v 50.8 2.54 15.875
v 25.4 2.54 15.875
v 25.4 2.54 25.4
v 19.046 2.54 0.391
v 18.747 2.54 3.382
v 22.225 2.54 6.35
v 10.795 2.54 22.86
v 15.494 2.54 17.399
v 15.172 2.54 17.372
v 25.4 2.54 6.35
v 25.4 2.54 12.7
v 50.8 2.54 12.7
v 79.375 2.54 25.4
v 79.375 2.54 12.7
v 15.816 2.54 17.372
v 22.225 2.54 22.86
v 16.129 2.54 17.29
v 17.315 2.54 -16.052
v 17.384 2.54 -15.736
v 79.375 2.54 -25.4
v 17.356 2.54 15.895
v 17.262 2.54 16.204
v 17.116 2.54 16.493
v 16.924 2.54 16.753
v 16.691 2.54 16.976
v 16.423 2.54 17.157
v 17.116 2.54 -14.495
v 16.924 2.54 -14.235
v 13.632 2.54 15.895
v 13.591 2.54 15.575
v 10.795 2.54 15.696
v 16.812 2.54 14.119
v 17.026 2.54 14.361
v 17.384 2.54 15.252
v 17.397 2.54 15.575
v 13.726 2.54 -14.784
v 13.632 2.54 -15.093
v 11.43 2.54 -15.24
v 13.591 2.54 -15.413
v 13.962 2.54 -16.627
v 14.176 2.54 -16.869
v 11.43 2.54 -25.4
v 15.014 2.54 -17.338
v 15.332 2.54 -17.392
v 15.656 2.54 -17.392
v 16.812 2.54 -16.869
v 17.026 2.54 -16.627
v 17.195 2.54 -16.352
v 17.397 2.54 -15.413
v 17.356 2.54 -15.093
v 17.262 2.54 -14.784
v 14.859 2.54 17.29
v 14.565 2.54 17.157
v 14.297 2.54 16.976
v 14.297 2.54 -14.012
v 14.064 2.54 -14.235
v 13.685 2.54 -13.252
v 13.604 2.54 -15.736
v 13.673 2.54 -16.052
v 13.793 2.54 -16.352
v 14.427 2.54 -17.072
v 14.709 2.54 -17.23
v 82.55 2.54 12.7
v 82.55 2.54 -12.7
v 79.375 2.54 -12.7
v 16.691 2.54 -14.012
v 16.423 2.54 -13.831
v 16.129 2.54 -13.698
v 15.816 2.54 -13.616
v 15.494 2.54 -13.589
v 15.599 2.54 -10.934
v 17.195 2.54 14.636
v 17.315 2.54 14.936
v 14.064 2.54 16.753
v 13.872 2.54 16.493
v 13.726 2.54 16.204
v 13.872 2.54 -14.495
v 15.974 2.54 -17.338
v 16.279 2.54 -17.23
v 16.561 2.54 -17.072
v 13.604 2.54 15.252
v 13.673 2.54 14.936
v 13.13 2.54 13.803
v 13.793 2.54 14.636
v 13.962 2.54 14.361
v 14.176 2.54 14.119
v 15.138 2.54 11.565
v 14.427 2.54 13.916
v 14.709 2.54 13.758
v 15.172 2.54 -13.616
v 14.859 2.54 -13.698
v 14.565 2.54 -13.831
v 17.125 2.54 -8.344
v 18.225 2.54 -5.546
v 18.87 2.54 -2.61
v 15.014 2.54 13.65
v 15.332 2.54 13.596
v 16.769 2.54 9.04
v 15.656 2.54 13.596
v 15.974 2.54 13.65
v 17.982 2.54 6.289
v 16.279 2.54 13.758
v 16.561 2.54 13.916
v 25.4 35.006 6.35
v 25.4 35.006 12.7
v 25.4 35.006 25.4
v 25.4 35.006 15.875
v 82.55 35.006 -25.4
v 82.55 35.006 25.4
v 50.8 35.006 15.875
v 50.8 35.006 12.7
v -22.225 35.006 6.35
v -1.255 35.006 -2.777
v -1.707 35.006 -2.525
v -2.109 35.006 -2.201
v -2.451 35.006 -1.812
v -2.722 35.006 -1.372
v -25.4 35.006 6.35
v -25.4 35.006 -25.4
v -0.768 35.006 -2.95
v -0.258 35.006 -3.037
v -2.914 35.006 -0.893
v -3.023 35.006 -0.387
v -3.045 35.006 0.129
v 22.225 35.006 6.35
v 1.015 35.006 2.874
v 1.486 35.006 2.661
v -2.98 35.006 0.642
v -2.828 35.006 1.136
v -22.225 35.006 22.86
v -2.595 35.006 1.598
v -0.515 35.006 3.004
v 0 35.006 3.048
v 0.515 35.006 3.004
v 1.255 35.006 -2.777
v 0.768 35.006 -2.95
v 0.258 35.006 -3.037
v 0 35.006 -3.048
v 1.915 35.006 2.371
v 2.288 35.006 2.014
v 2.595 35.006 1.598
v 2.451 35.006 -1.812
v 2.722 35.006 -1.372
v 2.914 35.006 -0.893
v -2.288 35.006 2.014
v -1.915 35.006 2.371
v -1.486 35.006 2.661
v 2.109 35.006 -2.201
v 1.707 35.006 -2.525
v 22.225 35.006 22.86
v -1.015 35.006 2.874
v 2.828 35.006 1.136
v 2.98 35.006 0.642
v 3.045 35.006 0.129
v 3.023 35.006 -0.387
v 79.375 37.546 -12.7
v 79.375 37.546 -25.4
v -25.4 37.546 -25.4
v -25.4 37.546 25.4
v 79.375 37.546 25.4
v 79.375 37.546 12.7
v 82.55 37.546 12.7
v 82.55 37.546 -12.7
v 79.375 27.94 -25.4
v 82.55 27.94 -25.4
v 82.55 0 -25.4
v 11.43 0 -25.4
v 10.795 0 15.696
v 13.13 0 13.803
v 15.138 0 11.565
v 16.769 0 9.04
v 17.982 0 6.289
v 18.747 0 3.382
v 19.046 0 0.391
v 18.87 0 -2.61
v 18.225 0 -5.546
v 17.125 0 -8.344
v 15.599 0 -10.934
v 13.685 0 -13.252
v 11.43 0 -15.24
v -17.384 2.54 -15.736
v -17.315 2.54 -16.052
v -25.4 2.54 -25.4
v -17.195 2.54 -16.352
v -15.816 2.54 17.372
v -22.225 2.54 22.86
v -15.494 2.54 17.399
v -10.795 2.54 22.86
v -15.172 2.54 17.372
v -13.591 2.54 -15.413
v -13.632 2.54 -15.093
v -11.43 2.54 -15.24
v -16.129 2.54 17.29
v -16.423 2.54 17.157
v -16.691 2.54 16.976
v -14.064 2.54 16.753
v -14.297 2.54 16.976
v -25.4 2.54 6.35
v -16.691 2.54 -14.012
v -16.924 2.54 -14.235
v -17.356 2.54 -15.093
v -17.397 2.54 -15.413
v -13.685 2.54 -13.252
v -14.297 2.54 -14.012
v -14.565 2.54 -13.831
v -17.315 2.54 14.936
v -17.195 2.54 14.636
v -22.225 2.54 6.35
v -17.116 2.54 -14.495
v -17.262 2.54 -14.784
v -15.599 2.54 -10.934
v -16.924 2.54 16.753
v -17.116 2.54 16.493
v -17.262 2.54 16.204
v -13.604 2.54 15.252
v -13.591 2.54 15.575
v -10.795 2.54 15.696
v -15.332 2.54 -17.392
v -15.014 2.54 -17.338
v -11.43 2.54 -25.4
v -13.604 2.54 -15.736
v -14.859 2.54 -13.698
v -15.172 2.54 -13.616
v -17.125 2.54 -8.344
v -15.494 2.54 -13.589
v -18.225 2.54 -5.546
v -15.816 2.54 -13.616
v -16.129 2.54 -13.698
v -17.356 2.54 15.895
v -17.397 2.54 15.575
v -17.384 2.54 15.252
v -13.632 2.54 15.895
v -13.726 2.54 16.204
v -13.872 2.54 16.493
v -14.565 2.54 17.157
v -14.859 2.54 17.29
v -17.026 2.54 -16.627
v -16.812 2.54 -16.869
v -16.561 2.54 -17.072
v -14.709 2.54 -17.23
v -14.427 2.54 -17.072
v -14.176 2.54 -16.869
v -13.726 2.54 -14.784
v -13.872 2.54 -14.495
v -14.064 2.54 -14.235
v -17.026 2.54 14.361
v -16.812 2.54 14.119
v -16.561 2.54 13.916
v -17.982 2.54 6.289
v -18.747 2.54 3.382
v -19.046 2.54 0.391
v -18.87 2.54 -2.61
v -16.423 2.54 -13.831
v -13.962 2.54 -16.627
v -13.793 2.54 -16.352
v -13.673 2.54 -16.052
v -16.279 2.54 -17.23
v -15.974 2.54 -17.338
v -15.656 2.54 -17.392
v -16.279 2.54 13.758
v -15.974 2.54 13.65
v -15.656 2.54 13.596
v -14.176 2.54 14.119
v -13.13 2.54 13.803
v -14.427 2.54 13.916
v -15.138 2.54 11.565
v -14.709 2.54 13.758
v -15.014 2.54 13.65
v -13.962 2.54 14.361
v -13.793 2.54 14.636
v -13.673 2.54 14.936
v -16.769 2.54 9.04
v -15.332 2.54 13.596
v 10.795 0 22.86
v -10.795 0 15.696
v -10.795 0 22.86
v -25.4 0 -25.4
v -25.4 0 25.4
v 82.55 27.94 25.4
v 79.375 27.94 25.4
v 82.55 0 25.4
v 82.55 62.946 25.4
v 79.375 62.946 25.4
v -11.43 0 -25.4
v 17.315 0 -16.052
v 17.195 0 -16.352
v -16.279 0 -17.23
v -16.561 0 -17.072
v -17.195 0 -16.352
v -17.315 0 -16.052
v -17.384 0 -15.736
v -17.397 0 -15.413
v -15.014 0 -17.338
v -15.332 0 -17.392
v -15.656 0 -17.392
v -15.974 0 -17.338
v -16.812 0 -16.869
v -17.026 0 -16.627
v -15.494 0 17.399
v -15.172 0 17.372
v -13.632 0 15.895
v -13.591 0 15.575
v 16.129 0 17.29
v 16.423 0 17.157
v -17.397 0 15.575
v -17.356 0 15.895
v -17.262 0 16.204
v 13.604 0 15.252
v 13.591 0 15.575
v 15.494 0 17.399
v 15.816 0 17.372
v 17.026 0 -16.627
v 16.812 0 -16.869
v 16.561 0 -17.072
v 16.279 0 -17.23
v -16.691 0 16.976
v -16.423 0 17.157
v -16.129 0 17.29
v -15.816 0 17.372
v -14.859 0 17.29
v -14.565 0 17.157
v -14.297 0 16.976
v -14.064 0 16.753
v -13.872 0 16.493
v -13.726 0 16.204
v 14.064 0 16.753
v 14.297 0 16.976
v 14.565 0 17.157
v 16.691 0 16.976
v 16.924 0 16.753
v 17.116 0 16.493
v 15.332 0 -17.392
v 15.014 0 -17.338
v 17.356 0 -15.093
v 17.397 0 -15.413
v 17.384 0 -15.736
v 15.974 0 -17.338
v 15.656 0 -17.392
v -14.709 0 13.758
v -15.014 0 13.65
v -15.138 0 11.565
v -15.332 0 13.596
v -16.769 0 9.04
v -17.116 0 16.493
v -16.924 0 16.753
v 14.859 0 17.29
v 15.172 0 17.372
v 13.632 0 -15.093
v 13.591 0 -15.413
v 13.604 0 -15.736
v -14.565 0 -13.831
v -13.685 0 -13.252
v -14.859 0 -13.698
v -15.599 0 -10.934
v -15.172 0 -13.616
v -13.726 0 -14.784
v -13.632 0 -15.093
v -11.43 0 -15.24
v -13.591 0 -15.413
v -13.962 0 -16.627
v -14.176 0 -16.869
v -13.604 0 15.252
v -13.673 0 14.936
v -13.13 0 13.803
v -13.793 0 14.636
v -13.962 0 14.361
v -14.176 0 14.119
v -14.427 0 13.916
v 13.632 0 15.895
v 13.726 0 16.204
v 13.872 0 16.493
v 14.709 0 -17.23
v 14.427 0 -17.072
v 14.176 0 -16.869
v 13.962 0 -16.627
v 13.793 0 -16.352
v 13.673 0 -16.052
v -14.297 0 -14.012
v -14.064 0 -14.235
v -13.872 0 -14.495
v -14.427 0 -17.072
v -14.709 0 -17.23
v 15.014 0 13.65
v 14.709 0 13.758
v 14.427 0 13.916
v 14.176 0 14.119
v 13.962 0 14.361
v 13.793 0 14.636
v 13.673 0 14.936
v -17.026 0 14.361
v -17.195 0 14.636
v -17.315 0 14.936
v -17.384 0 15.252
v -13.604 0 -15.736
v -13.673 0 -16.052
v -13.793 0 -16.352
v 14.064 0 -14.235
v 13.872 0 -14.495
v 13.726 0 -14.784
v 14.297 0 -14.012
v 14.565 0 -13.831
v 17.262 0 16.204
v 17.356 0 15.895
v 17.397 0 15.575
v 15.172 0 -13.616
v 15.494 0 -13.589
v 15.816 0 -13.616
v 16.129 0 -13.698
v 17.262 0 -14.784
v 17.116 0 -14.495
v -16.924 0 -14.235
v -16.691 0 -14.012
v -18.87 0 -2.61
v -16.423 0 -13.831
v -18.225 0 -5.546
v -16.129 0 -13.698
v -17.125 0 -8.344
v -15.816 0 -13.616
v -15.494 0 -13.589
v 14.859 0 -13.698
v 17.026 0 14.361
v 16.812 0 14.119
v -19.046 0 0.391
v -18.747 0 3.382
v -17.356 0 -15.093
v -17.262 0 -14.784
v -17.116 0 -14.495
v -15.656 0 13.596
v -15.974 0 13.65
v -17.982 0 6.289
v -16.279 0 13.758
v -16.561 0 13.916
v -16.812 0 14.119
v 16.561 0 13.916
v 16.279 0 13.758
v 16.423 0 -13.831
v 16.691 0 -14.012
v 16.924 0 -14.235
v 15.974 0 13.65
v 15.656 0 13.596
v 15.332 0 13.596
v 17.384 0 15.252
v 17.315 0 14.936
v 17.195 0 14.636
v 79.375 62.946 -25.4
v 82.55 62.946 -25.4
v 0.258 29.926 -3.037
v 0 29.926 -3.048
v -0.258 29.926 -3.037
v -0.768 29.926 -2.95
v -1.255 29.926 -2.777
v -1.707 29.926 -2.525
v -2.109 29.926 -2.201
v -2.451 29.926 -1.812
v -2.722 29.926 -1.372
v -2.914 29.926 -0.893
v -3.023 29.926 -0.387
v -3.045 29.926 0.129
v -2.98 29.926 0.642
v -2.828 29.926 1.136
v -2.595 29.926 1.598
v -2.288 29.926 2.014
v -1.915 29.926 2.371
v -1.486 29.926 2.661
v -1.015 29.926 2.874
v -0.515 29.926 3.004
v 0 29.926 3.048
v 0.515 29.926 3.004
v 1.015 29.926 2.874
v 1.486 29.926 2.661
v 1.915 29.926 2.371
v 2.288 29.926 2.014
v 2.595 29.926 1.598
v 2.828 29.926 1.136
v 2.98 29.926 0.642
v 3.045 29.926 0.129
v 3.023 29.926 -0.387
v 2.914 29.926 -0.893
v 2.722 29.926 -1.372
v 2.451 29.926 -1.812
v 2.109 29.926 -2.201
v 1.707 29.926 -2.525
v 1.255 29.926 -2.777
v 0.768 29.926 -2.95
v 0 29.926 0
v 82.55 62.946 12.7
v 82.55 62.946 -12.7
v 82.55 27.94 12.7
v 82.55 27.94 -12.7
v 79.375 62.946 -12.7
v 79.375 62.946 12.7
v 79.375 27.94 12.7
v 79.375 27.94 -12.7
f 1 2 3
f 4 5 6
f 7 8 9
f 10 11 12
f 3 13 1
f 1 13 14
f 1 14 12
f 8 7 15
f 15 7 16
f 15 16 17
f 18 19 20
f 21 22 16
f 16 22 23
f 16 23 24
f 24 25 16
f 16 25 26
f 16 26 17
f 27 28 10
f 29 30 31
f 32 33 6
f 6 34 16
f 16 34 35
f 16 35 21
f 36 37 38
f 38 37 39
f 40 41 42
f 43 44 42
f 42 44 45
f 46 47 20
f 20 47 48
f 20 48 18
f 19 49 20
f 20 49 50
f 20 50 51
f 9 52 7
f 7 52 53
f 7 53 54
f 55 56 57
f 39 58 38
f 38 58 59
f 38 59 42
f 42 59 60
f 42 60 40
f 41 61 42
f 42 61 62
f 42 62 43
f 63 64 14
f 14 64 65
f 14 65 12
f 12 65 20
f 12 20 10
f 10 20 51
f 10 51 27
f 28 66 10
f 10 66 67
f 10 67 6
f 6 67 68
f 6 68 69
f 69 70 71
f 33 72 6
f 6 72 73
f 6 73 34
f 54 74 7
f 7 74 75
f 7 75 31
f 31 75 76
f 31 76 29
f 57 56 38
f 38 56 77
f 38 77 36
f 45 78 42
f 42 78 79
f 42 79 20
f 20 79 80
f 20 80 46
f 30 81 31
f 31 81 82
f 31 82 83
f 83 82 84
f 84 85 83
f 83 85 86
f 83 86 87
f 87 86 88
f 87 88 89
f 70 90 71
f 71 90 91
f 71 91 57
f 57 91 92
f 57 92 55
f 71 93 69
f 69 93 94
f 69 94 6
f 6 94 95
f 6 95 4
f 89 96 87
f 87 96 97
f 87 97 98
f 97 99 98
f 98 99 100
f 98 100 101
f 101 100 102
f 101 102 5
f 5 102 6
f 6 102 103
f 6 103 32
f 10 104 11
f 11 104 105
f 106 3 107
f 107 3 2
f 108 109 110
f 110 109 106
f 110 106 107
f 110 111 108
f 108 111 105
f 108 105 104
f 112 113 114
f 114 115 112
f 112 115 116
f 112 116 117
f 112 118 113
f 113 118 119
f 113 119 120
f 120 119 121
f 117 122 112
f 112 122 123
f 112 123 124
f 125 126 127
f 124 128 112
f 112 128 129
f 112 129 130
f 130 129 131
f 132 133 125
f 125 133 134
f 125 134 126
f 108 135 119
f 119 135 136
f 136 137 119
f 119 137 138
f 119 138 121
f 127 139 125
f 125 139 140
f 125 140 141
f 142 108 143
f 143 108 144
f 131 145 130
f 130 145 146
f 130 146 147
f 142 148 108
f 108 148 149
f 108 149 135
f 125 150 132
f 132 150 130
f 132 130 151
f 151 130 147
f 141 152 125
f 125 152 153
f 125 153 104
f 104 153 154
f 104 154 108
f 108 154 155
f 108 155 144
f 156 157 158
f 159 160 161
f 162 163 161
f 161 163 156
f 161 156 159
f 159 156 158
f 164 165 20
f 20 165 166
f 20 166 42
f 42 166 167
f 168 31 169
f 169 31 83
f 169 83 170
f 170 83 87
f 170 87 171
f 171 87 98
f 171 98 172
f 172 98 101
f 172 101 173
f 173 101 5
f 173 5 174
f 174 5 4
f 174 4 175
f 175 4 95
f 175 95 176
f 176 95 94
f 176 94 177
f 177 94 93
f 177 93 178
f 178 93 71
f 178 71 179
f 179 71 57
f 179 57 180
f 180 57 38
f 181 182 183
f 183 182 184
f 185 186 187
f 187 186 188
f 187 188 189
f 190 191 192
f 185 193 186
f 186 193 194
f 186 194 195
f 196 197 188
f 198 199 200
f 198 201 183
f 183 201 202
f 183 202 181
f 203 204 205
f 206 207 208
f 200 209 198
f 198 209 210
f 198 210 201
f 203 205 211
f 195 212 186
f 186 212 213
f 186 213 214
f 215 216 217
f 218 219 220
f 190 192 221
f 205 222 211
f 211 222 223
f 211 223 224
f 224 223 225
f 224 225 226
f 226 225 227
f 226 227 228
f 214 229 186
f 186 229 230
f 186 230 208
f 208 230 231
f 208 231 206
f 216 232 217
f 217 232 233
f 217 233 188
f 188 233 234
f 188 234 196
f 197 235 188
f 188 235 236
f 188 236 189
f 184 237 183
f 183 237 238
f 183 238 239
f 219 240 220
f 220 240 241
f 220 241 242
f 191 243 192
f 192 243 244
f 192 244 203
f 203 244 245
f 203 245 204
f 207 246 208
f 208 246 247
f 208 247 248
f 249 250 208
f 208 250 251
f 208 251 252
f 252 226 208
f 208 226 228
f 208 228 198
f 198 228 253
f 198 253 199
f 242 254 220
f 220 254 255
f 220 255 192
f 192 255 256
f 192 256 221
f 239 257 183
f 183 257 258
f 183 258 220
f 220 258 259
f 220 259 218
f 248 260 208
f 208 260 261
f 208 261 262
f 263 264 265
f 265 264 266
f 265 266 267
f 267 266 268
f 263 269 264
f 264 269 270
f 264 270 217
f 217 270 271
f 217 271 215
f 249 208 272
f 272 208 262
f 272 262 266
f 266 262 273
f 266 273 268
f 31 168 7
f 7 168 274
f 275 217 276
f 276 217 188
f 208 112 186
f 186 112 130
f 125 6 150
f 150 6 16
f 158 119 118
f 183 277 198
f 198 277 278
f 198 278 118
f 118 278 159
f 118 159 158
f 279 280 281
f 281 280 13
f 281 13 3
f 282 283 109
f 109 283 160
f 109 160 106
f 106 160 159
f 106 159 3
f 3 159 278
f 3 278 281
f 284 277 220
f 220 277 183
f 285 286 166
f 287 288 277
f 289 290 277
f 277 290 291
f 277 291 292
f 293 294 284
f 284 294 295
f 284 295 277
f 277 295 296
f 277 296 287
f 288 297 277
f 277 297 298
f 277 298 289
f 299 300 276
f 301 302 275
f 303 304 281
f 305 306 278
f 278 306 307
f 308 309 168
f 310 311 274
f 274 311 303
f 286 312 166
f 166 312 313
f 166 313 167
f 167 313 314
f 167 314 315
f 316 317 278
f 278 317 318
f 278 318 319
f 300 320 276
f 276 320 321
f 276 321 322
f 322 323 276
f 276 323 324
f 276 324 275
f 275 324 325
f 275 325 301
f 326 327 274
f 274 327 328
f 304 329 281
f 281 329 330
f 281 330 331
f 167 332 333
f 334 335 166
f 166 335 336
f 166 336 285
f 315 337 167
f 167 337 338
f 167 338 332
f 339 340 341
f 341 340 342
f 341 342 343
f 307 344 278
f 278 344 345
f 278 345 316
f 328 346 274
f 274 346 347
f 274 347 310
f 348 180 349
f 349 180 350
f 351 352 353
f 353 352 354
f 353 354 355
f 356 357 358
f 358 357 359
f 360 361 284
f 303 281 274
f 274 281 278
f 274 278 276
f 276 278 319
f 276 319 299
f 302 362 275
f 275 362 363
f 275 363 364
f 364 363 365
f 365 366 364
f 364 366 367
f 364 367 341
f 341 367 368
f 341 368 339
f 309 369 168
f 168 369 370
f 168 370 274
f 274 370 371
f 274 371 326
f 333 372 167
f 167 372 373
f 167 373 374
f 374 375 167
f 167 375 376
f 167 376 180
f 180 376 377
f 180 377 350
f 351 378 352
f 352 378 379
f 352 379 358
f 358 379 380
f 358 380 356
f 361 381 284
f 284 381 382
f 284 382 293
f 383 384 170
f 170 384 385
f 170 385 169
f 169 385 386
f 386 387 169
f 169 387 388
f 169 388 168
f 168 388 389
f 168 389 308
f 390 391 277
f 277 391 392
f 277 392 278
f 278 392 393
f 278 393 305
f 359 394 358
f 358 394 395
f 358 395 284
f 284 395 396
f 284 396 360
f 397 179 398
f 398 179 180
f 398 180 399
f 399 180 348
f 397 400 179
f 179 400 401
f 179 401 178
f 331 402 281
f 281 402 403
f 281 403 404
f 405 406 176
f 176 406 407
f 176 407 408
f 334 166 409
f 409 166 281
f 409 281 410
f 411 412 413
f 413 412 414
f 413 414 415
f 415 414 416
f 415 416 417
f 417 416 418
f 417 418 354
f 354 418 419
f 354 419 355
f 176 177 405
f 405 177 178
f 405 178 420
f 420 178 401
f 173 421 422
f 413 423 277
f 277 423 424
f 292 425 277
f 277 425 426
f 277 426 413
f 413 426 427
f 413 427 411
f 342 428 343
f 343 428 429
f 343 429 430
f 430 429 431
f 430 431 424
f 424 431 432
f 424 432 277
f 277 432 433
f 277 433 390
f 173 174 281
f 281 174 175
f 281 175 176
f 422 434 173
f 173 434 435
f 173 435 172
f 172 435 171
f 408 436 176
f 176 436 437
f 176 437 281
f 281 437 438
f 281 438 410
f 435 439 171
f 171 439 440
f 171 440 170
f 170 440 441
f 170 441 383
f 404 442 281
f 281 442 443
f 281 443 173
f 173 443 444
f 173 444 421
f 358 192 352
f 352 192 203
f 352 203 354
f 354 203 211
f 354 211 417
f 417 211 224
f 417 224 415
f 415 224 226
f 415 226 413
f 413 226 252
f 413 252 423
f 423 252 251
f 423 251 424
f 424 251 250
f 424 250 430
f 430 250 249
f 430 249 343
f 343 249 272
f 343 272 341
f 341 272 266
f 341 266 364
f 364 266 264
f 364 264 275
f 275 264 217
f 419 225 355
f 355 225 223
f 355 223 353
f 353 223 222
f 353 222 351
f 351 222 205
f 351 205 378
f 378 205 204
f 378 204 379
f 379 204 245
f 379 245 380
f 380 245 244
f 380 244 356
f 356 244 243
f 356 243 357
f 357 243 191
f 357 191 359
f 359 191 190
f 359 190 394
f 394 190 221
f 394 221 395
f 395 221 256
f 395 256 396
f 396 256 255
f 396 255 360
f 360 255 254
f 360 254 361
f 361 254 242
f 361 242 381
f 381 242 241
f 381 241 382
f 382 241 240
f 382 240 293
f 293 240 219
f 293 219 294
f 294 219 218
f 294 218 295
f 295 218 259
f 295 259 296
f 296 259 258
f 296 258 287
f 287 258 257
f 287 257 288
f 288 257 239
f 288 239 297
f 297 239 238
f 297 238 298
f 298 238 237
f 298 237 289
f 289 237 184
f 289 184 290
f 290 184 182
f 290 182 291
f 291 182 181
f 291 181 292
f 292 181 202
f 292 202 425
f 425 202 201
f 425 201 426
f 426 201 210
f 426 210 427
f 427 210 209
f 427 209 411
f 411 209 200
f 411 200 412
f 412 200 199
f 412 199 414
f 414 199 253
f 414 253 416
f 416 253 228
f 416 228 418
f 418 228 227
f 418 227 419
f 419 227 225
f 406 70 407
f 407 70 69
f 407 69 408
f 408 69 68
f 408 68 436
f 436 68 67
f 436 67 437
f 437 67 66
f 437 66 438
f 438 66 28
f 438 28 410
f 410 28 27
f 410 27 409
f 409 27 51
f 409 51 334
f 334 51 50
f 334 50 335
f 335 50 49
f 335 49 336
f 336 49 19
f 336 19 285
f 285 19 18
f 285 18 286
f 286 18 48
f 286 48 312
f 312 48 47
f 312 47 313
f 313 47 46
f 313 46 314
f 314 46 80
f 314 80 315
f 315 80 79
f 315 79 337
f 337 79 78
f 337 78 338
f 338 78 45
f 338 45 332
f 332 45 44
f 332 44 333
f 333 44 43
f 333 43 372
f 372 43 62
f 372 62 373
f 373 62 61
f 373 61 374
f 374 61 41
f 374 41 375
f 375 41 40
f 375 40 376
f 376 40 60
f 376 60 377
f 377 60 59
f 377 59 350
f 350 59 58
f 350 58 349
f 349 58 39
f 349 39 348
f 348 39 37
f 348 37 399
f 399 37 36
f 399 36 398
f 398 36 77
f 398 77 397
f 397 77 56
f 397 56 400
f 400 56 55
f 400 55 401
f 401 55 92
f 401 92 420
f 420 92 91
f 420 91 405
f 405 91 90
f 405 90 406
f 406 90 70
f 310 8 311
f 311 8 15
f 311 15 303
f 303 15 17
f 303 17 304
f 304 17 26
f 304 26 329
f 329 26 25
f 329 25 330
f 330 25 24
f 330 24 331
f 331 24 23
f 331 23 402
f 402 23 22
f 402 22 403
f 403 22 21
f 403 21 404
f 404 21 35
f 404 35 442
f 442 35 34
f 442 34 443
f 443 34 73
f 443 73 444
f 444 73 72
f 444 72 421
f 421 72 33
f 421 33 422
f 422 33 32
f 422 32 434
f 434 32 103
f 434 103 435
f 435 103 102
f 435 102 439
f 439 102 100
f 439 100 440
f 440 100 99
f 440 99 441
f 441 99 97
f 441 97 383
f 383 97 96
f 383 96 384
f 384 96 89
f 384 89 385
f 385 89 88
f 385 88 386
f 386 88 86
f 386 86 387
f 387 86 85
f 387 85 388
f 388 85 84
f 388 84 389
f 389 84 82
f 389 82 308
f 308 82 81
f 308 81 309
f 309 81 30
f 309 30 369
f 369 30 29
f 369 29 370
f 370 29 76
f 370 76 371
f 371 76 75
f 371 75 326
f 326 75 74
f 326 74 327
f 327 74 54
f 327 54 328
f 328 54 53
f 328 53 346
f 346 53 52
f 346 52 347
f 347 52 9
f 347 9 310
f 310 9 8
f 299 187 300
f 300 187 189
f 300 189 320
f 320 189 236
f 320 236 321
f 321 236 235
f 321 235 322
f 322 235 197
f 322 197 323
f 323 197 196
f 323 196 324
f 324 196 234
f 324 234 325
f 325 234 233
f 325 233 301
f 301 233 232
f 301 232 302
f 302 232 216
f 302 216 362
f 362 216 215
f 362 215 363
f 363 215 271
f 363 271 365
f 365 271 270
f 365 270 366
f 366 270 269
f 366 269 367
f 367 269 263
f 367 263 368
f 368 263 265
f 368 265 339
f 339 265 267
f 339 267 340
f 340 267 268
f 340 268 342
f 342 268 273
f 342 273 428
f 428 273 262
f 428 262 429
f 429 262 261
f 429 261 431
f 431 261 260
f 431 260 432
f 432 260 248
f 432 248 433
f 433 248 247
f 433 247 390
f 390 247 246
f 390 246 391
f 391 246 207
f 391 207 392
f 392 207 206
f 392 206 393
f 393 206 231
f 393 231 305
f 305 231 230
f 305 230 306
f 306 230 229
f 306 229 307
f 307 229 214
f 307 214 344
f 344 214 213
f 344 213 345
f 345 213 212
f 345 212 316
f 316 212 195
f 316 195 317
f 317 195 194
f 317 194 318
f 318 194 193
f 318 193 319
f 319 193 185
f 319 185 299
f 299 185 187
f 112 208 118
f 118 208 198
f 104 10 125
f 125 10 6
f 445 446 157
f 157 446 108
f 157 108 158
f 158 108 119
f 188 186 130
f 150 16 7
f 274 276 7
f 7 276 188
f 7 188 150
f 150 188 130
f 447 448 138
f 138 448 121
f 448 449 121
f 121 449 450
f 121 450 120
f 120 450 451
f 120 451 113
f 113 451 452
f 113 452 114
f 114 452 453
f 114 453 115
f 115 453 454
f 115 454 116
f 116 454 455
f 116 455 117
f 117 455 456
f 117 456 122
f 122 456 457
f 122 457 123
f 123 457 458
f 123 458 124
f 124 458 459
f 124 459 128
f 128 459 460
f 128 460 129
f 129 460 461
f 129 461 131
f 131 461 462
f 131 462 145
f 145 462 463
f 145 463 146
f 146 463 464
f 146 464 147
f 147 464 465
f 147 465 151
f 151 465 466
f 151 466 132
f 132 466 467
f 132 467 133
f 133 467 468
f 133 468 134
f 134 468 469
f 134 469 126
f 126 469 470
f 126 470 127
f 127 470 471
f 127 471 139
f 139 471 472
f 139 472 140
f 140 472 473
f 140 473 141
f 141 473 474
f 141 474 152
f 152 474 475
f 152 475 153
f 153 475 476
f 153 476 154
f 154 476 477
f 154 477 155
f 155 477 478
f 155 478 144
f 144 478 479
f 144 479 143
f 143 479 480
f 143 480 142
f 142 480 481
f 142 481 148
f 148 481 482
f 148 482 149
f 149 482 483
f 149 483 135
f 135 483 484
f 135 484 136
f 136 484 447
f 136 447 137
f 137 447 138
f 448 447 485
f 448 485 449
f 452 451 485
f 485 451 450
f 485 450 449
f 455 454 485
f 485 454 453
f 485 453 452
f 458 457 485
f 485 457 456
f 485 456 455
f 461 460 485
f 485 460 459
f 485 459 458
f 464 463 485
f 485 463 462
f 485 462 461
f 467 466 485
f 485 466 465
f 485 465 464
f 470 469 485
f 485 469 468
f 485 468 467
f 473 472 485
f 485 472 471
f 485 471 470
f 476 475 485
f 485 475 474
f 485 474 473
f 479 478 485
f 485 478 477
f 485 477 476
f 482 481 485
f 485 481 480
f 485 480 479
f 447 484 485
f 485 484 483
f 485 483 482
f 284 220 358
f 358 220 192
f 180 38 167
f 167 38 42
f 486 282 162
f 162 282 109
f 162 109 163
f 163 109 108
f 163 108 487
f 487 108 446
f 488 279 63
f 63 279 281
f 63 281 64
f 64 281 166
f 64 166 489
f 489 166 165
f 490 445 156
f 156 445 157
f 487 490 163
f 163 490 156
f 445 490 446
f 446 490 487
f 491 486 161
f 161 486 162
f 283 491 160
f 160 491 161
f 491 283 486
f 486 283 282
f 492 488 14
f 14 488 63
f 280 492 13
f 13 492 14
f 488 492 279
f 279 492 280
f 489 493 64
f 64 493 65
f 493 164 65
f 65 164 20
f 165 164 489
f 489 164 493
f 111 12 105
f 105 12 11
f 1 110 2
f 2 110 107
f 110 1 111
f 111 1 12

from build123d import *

# Parameters (mm, degrees)
SKETCH1_W            = 50.8
SKETCH1_H            = 50.8
BOSS_EXTRUDE1_DEPTH  = 2.54
SKETCH2_R            = 19.05
CUT_EXTRUDE1_DEPTH   = 37.010715072
SKETCH3_R            = 1.905
CUT_EXTRUDE2_DEPTH   = 37.010715072
SKETCH4_W            = 21.59
SKETCH4_H            = 9.70380699
CUT_EXTRUDE3_DEPTH   = 37.010715072
SKETCH5_W            = 3.175
SKETCH5_H            = 19.05
BOSS_EXTRUDE2_DEPTH  = 35.005772
SKETCH6_W            = 50.8
SKETCH6_H            = 50.8
BOSS_EXTRUDE3_DEPTH  = 2.54
SKETCH8_W            = 50.8
SKETCH8_H            = 37.545772
BOSS_EXTRUDE4_DEPTH  = 2.54
SKETCH9_R            = 3.048
BOSS_EXTRUDE5_DEPTH  = 5.08
CUT_EXTRUDE4_REACH   = 53.962
SKETCH10_W           = 22.86
SKETCH10_H           = 10.16
SKETCH13_W           = 50.8
SKETCH13_H           = 2.54
BOSS_EXTRUDE7_DEPTH  = 57.15
SKETCH15_W           = 3.175
SKETCH15_H           = 12.7
BOSS_EXTRUDE8_DEPTH  = 25.4
SKETCH17_W           = 3.175
SKETCH17_H           = 12.7
BOSS_EXTRUDE10_DEPTH = 25.4
SKETCH18_W           = 3.175
SKETCH18_H           = 32.465772
BOSS_EXTRUDE11_DEPTH = 25.4


with BuildPart() as part:
    # Sketch1 → Boss-Extrude1 (new body)
    with BuildSketch(Plane(origin=(0, 0, 0), x_dir=(1, 0, 0), z_dir=(0, 1, 0))):
        Rectangle(SKETCH1_W, SKETCH1_H)
    extrude(amount=BOSS_EXTRUDE1_DEPTH)

    # Sketch2 → Cut-Extrude1 (cut, through all)
    with BuildSketch(Plane(origin=(0, 2.54, 0), x_dir=(1, 0, 0), z_dir=(0, 1, 0))):
        with Locations(Location((0, 0, 0), (0, 0, 270))):
            Circle(SKETCH2_R)
    extrude(amount=-CUT_EXTRUDE1_DEPTH, mode=Mode.SUBTRACT)

    # Sketch3 → Cut-Extrude2 (cut, through all)
    with BuildSketch(Plane(origin=(0, 2.54, 0), x_dir=(1, 0, 0), z_dir=(0, 1, 0))):
        with Locations(Location((-15.494, 15.494, 0), (0, 0, 270))):
            Circle(SKETCH3_R)
        with Locations(Location((15.494, 15.494, 0), (0, 0, 270))):
            Circle(SKETCH3_R)
        with Locations(Location((15.494, -15.494, 0), (0, 0, 270))):
            Circle(SKETCH3_R)
        with Locations(Location((-15.494, -15.494, 0), (0, 0, 270))):
            Circle(SKETCH3_R)
    extrude(amount=-CUT_EXTRUDE2_DEPTH, mode=Mode.SUBTRACT)

    # Sketch4 → Cut-Extrude3 (cut, through all)
    with BuildSketch(Plane(origin=(0, 2.54, 0), x_dir=(1, 0, 0), z_dir=(0, 1, 0))):
        with Locations((0, -20.548096505)):
            Rectangle(SKETCH4_W, SKETCH4_H)
    extrude(amount=-CUT_EXTRUDE3_DEPTH, mode=Mode.SUBTRACT)

    # Sketch5 → Boss-Extrude2 (add)
    with BuildSketch(Plane(origin=(0, 2.54, 0), x_dir=(1, 0, 0), z_dir=(0, 1, 0))):
        with Locations((-23.8125, -15.875)):
            Rectangle(SKETCH5_W, SKETCH5_H)
        with Locations((23.8125, -15.875)):
            Rectangle(SKETCH5_W, SKETCH5_H)
    extrude(amount=BOSS_EXTRUDE2_DEPTH)

    # Sketch6 → Boss-Extrude3 (add)
    with BuildSketch(Plane(origin=(0, 37.545772, 0), x_dir=(1, 0, 0), z_dir=(0, 1, 0))):
        Rectangle(SKETCH6_W, SKETCH6_H)
    extrude(amount=-BOSS_EXTRUDE3_DEPTH)

    # Sketch8 → Boss-Extrude4 (add)
    with BuildSketch(Plane.XY.offset(25.4)):
        with Locations((0, 18.772886)):
            Rectangle(SKETCH8_W, SKETCH8_H)
    extrude(amount=-BOSS_EXTRUDE4_DEPTH)

    # Sketch9 → Boss-Extrude5 (add)
    with BuildSketch(Plane.XZ.offset(-35.005772)):
        with Locations(Location((0, 0, 0), (0, 0, 270))):
            Circle(SKETCH9_R)
    extrude(amount=BOSS_EXTRUDE5_DEPTH)

    # Sketch10 → Cut-Extrude4 (cut, up to next)
    with BuildSketch(Plane.XZ, mode=Mode.PRIVATE) as cut_extrude4_sk1:
        with Locations((0, -20.32)):
            Rectangle(SKETCH10_W, SKETCH10_H)
    cut_extrude4_tool1 = extrude(cut_extrude4_sk1.sketch, amount=-CUT_EXTRUDE4_REACH, mode=Mode.PRIVATE) & part.part
    add(cut_extrude4_tool1.solids().sort_by_distance((0, 0, -20.32))[0], mode=Mode.SUBTRACT)

    # Sketch13 → Boss-Extrude7 (add)
    with BuildSketch(Plane(origin=(25.4, 0, 0), x_dir=(0, 0, -1), z_dir=(1, 0, 0))):
        with Locations((0, 36.275772)):
            Rectangle(SKETCH13_W, SKETCH13_H)
        with Locations((0, 1.27)):
            Rectangle(SKETCH13_W, SKETCH13_H)
    extrude(amount=BOSS_EXTRUDE7_DEPTH)

    # Sketch15 → Boss-Extrude8 (add)
    with BuildSketch(Plane(origin=(0, 37.545772, 0), x_dir=(1, 0, 0), z_dir=(0, 1, 0))):
        with Locations((80.9625, 19.05)):
            Rectangle(SKETCH15_W, SKETCH15_H)
        with Locations((80.9625, -19.05)):
            Rectangle(SKETCH15_W, SKETCH15_H)
    extrude(amount=BOSS_EXTRUDE8_DEPTH)

    # Sketch17 → Boss-Extrude10 (add)
    with BuildSketch(Plane(origin=(0, 2.54, 0), x_dir=(1, 0, 0), z_dir=(0, 1, 0))):
        with Locations((80.9625, -19.05)):
            Rectangle(SKETCH17_W, SKETCH17_H)
        with Locations((80.9625, 19.05)):
            Rectangle(SKETCH17_W, SKETCH17_H)
    extrude(amount=BOSS_EXTRUDE10_DEPTH)

    # Sketch18 → Boss-Extrude11 (add)
    with BuildSketch(Plane(origin=(25.4, 0, 0), x_dir=(0, 0, -1), z_dir=(1, 0, 0))):
        with Locations((-14.2875, 18.772886)):
            Rectangle(SKETCH18_W, SKETCH18_H)
    extrude(amount=BOSS_EXTRUDE11_DEPTH)


solid = part.part
